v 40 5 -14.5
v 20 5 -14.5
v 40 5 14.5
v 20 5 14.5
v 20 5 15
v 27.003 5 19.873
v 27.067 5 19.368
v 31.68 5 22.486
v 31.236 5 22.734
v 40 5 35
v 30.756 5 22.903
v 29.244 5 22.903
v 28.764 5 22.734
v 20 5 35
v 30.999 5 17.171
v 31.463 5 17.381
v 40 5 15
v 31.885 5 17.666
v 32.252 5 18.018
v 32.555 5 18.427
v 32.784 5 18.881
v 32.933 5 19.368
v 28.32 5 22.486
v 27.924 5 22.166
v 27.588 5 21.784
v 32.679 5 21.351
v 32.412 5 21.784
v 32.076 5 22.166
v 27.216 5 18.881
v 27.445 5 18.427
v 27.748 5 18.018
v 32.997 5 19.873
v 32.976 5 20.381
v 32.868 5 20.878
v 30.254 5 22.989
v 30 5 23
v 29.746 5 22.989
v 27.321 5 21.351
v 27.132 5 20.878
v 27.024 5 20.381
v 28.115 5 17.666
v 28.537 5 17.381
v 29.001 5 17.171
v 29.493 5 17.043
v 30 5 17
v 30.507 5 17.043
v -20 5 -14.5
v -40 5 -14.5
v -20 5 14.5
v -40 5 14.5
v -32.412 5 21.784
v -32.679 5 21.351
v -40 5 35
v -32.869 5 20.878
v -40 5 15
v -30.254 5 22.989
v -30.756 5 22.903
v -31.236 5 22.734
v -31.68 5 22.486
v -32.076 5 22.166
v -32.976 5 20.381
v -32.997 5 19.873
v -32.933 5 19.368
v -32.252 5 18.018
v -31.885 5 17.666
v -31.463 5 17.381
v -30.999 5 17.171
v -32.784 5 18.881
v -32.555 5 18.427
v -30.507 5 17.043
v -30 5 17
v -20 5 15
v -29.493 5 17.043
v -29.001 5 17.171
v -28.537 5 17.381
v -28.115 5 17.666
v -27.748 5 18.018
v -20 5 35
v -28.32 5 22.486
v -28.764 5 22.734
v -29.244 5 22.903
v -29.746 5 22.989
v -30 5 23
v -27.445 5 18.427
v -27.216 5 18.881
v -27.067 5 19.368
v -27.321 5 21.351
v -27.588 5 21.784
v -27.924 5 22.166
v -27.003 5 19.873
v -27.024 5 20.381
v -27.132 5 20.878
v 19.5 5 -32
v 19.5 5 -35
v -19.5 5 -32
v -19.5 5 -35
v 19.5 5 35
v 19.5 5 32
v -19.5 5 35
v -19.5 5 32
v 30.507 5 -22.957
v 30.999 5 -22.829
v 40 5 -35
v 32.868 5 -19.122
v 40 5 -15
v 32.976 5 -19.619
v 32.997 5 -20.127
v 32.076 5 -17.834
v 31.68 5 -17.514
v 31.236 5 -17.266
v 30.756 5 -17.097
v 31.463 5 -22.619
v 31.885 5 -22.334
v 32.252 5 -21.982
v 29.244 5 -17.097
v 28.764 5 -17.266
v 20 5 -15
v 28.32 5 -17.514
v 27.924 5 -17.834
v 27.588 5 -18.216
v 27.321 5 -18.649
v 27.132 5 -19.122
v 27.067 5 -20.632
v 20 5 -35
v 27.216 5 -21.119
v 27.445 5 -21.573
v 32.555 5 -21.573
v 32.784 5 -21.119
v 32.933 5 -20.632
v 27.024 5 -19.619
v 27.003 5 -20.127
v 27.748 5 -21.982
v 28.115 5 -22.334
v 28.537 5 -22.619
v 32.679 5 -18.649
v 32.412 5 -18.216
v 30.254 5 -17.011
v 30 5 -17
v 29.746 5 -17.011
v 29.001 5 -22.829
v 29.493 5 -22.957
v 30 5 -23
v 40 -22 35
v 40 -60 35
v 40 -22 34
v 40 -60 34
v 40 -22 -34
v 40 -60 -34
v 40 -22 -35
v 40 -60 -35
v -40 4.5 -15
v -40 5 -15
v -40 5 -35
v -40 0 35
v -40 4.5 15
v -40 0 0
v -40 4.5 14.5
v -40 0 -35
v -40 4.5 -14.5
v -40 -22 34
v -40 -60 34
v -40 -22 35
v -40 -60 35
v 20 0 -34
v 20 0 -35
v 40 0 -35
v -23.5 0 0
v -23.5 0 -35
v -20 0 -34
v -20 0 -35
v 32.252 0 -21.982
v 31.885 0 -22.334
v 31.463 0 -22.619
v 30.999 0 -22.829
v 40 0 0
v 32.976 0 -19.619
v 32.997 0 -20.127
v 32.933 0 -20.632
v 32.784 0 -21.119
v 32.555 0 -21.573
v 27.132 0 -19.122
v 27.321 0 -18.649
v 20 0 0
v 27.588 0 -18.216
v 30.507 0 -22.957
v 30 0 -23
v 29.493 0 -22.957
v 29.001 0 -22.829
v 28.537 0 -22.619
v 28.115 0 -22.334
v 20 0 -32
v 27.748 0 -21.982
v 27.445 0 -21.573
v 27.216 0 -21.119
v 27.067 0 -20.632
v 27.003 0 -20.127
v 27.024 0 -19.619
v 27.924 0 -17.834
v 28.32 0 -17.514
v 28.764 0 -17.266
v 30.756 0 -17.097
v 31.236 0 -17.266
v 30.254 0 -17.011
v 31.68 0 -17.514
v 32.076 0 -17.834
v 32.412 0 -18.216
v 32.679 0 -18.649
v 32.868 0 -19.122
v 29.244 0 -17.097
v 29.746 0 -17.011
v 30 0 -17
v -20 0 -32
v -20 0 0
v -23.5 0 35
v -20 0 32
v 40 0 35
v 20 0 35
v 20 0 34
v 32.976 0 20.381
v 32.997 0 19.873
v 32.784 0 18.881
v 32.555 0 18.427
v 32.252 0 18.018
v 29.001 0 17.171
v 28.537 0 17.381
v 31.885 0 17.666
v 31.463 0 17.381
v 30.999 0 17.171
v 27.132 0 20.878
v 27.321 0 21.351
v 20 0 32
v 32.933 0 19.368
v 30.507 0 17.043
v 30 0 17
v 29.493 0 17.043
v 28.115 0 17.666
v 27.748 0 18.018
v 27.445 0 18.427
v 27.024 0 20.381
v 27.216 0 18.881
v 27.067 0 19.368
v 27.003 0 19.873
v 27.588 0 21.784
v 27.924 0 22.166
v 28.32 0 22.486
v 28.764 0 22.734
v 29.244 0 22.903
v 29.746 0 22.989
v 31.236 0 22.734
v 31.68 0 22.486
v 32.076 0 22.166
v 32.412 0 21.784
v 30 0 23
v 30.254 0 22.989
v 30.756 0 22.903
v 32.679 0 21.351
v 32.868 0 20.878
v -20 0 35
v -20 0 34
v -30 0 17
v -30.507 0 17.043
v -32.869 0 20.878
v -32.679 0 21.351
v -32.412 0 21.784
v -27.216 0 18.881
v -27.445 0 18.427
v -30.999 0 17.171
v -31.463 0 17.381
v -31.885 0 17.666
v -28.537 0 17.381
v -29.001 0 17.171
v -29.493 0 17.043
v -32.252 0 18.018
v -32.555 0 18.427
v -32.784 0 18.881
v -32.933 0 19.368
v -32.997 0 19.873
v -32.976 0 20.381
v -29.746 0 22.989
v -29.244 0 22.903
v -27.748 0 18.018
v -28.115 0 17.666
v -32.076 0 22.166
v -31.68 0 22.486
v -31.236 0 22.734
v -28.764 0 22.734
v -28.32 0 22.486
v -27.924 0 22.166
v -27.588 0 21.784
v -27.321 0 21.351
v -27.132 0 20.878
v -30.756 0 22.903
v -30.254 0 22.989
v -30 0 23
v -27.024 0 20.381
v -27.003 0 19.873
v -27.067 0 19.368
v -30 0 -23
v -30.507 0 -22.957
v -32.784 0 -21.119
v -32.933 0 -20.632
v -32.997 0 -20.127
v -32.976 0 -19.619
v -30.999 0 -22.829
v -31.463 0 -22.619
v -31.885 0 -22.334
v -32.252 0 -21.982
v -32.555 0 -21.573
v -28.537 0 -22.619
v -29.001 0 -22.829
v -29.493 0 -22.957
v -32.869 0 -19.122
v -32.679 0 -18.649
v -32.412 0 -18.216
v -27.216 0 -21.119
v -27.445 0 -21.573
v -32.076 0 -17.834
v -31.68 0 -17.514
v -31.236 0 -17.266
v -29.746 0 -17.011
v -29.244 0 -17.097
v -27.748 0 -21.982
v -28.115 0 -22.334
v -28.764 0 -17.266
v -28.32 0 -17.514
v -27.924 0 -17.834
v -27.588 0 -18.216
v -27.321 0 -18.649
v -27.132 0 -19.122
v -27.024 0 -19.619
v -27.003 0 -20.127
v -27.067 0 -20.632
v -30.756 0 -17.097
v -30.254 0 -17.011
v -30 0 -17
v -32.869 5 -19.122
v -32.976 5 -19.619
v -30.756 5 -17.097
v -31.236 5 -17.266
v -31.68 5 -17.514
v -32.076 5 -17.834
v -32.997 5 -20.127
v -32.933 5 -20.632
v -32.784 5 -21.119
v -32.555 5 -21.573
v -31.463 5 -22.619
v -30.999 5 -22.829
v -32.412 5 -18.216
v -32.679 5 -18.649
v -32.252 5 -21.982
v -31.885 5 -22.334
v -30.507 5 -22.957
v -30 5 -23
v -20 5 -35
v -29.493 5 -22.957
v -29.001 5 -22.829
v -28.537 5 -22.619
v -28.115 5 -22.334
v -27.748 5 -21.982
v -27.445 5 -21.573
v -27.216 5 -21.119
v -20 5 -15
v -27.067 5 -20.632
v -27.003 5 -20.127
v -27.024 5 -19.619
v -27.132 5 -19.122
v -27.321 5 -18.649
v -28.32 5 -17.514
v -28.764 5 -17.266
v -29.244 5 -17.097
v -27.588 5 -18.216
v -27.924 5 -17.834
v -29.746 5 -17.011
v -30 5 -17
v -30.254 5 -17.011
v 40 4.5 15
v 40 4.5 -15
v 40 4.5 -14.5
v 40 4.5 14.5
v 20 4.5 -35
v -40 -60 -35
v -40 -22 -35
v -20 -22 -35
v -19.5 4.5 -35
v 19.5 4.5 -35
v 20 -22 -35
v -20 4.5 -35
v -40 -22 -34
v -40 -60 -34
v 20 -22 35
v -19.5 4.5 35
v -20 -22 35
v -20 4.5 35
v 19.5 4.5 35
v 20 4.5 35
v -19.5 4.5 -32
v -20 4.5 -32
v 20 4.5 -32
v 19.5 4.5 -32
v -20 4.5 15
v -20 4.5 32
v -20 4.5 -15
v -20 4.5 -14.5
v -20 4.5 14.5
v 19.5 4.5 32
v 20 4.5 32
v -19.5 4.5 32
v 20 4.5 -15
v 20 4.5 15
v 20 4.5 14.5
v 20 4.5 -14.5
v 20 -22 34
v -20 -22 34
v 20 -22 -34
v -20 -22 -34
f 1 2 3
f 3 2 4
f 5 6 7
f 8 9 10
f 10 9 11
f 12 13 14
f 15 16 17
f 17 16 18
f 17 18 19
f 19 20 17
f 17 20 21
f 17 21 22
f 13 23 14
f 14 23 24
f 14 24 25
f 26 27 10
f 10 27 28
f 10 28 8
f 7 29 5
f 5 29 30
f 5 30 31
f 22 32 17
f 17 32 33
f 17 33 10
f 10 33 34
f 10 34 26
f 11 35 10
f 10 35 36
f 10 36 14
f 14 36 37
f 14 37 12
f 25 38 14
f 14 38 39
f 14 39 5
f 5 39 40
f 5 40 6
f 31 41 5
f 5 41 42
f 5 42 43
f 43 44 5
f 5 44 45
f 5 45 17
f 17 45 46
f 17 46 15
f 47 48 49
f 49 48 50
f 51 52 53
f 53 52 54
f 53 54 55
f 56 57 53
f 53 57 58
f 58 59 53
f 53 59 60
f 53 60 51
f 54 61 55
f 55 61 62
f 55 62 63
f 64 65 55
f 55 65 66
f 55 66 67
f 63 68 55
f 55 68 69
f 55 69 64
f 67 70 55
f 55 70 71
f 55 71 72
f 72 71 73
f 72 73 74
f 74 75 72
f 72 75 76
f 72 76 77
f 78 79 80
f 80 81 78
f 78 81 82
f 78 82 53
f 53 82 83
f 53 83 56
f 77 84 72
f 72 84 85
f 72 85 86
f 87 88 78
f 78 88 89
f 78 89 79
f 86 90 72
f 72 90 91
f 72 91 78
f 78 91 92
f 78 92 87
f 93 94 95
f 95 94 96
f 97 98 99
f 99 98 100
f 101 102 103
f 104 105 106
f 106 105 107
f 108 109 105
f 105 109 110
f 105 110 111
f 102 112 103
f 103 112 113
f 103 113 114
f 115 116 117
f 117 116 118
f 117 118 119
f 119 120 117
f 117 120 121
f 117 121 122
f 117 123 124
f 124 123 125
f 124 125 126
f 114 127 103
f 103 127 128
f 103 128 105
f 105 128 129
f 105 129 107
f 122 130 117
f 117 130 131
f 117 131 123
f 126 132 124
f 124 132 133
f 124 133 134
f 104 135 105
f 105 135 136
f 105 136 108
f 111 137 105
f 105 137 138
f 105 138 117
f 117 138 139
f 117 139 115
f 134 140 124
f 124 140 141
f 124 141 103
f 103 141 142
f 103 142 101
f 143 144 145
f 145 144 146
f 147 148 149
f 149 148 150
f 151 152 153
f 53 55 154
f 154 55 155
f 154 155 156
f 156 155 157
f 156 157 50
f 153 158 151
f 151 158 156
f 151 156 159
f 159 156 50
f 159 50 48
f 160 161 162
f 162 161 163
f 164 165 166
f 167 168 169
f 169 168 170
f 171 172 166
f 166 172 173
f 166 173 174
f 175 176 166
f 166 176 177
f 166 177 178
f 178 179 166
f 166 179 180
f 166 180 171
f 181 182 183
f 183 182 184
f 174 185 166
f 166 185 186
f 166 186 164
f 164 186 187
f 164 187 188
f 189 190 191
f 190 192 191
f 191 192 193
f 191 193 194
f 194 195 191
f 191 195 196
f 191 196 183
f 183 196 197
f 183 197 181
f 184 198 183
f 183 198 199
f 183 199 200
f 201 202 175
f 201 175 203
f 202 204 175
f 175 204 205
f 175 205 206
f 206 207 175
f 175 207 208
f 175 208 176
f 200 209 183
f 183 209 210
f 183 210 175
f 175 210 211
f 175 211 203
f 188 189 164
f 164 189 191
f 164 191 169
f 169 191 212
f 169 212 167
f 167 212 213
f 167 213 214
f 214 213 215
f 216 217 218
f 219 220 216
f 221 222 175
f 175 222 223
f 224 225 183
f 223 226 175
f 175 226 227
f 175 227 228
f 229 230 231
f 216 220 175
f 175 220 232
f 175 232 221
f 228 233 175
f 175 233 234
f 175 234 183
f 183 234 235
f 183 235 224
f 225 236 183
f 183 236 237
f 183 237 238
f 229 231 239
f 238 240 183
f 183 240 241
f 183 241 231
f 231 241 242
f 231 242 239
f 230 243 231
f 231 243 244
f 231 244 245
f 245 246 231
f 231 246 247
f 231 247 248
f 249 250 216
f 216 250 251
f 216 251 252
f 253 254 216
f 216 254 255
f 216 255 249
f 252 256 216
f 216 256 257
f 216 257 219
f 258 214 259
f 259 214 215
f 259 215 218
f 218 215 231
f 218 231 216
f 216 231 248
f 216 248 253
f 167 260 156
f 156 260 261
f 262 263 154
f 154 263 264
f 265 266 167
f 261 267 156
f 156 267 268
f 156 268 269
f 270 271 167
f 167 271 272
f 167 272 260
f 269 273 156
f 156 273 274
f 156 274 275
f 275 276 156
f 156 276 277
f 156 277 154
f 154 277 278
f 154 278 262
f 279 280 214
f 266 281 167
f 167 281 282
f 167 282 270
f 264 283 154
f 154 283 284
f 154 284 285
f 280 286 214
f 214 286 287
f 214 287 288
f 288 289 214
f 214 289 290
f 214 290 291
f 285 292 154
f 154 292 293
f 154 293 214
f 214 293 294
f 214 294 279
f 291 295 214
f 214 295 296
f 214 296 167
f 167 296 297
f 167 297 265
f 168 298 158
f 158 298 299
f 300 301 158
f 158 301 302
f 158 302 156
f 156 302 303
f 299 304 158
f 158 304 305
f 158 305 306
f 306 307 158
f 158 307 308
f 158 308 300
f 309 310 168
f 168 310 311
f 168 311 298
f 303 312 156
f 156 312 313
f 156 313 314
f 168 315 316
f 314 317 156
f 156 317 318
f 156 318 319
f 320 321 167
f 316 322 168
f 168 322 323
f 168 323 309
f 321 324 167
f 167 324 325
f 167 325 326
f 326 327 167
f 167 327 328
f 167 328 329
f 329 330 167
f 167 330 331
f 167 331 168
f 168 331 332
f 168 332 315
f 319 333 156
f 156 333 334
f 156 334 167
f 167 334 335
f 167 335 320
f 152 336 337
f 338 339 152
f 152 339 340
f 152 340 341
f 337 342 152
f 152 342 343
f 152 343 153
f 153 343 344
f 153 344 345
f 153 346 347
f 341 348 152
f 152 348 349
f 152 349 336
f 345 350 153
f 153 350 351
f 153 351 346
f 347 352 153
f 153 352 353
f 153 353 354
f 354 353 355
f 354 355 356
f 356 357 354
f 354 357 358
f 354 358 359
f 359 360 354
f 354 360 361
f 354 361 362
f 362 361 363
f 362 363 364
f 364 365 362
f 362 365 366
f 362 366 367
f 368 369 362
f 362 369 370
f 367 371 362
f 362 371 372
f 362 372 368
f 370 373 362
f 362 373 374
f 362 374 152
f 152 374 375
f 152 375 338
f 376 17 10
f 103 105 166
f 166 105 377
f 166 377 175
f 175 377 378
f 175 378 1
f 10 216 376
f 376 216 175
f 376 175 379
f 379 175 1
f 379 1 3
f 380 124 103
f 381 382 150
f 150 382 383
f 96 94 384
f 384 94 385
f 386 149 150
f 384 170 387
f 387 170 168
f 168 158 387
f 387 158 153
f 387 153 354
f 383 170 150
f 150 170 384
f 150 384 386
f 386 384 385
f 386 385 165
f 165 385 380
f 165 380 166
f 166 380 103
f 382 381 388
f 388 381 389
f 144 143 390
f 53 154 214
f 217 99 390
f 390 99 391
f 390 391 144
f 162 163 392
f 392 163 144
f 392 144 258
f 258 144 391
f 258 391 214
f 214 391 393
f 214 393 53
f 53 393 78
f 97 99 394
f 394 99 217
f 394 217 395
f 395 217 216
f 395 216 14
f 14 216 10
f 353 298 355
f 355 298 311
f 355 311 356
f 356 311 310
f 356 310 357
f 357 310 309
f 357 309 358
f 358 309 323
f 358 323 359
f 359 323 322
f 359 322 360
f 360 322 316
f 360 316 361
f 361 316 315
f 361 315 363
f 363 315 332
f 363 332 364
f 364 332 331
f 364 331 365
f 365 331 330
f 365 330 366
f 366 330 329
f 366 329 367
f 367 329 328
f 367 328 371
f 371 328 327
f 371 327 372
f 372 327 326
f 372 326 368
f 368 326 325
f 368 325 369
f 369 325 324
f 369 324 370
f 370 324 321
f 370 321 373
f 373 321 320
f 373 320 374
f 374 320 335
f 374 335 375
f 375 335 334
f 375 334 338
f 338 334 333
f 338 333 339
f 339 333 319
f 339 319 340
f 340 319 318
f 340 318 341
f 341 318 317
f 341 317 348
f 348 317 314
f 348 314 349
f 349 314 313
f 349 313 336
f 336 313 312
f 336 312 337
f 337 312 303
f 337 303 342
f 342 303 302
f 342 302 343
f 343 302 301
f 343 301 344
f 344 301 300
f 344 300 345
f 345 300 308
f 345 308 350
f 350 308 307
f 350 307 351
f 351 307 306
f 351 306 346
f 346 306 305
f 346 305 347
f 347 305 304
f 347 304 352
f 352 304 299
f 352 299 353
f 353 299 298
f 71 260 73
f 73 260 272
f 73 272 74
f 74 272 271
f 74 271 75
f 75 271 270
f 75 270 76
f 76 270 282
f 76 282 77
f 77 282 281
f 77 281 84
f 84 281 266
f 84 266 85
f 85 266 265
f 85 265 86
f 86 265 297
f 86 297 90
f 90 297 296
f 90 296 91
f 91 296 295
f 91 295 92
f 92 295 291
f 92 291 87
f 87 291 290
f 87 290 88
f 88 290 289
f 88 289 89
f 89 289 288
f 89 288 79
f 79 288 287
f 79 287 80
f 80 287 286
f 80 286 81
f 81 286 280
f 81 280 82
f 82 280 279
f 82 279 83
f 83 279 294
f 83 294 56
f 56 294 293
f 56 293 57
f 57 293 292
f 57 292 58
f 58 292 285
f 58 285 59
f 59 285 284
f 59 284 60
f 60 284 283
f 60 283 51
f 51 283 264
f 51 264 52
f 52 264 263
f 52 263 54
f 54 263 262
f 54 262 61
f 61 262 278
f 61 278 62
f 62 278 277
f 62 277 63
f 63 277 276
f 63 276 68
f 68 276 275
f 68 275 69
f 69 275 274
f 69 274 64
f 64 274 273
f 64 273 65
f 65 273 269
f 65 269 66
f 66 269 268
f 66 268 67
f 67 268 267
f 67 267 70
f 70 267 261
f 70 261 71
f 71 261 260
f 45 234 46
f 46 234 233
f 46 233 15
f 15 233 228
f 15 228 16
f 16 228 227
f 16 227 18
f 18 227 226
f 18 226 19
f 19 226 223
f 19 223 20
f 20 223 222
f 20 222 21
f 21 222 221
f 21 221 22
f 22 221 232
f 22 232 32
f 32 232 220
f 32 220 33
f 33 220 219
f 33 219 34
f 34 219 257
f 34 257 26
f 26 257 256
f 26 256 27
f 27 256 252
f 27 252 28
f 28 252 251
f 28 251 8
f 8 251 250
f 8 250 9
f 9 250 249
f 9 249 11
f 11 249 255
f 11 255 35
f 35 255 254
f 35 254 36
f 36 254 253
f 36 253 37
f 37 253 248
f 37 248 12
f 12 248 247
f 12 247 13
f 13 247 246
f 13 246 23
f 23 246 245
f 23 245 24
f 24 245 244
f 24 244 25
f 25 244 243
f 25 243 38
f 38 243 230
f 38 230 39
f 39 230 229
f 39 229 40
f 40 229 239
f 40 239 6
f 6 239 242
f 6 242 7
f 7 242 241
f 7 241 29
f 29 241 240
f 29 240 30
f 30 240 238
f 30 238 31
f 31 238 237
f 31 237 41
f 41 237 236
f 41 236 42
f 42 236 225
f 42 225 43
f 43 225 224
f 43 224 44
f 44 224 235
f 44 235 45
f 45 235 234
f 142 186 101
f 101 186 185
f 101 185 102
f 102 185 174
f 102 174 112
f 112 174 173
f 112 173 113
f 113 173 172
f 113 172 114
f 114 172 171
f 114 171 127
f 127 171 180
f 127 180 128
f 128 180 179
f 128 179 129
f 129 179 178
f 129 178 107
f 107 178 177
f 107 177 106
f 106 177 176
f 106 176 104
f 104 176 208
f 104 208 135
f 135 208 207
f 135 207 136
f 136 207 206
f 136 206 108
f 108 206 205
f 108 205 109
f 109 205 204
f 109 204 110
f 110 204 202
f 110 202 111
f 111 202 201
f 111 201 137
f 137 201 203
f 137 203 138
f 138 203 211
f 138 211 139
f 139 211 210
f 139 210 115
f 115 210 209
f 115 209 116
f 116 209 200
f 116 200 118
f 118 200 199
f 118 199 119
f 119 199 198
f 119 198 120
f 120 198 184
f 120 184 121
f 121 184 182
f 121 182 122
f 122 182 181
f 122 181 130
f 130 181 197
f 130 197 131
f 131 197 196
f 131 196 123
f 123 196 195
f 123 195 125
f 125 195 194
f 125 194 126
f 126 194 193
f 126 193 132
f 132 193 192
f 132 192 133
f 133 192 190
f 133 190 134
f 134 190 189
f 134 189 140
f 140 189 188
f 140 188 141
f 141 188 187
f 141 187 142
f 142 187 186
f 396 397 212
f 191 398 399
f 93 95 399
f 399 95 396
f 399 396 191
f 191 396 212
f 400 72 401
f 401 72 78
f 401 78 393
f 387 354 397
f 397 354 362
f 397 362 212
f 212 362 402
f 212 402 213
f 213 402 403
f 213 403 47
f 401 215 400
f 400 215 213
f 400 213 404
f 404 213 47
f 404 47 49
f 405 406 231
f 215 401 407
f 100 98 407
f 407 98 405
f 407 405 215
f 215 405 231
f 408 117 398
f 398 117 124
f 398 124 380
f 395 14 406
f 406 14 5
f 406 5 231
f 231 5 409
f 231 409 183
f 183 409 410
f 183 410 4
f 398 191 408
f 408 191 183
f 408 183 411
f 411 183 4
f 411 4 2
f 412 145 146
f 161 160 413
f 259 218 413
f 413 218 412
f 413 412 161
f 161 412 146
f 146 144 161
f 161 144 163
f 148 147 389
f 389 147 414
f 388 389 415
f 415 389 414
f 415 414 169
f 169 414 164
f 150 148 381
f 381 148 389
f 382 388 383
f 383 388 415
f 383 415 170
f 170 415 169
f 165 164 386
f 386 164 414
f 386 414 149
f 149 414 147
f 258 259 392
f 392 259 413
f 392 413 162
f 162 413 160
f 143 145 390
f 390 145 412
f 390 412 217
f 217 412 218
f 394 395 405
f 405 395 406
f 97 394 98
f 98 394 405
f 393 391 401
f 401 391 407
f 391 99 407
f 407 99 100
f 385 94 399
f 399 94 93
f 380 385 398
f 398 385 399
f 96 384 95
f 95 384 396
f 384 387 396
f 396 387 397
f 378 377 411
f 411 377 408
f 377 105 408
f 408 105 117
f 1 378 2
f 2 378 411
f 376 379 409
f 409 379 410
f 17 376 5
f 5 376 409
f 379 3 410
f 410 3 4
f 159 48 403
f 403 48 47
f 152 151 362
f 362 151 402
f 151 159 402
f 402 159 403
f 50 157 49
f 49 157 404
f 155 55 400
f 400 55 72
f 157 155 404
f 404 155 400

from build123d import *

# Parameters (mm, degrees)
SKETCH_1_W          = 80
SKETCH_1_H          = 70
SKETCH_1_R          = 3
SKETCH_1_W_2        = 40
SKETCH_1_H_2        = 64
EXTRUDE_1_DEPTH     = 5
SKETCH_2_W          = 80
SKETCH_2_H          = 1
EXTRUDE_2_DEPTH     = 60
SKETCH_3_W          = 20
SKETCH_3_H          = 22
CUT_EXTRUDE_1_DEPTH = 101.498756211
SKETCH_5_W          = 0.5
SKETCH_5_H          = 70
CUT_EXTRUDE_2_DEPTH = 0.5
SKETCH_6_W          = 80
SKETCH_6_H          = 0.5
CUT_EXTRUDE_3_DEPTH = 0.5


with BuildPart() as part:
    # 草图1 → 凸台-拉伸1 (new body)
    with BuildSketch(Plane(origin=(0, 0, 0), x_dir=(1, 0, 0), z_dir=(0, 1, 0))):
        Rectangle(SKETCH_1_W, SKETCH_1_H)
        with Locations(Location((-30, 20, 0), (0, 0, 270))):
            Circle(SKETCH_1_R, mode=Mode.SUBTRACT)
        with Locations(Location((-30, -20, 0), (0, 0, 270))):
            Circle(SKETCH_1_R, mode=Mode.SUBTRACT)
        with Locations(Location((30, -20, 0), (0, 0, 270))):
            Circle(SKETCH_1_R, mode=Mode.SUBTRACT)
        with Locations(Location((30, 20, 0), (0, 0, 270))):
            Circle(SKETCH_1_R, mode=Mode.SUBTRACT)
        Rectangle(SKETCH_1_W_2, SKETCH_1_H_2, mode=Mode.SUBTRACT)
    extrude(amount=EXTRUDE_1_DEPTH)

    # 草图2 → 凸台-拉伸2 (add)
    with BuildSketch(Plane.XZ):
        with Locations((0, 34.5)):
            Rectangle(SKETCH_2_W, SKETCH_2_H)
        with Locations((0, -34.5)):
            Rectangle(SKETCH_2_W, SKETCH_2_H)
    extrude(amount=EXTRUDE_2_DEPTH)

    # 草图3 → 切除-拉伸1 (cut, through all)
    with BuildSketch(Plane.XY.offset(35)):
        with Locations((30, -11)):
            Rectangle(SKETCH_3_W, SKETCH_3_H)
        with Locations((-30, -11)):
            Rectangle(SKETCH_3_W, SKETCH_3_H)
    extrude(amount=-CUT_EXTRUDE_1_DEPTH, mode=Mode.SUBTRACT)

    # 草图5 → 切除-拉伸2 (cut)
    with BuildSketch(Plane(origin=(0, 5, 0), x_dir=(1, 0, 0), z_dir=(0, 1, 0))):
        with Locations((-19.75, 0)):
            Rectangle(SKETCH_5_W, SKETCH_5_H)
        with Locations((19.75, 0)):
            Rectangle(SKETCH_5_W, SKETCH_5_H)
    extrude(amount=-CUT_EXTRUDE_2_DEPTH, mode=Mode.SUBTRACT)

    # 草图6 → 切除-拉伸3 (cut)
    with BuildSketch(Plane(origin=(0, 5, 0), x_dir=(1, 0, 0), z_dir=(0, 1, 0))):
        with Locations((0, -14.75)):
            Rectangle(SKETCH_6_W, SKETCH_6_H)
        with Locations((0, 14.75)):
            Rectangle(SKETCH_6_W, SKETCH_6_H)
    extrude(amount=-CUT_EXTRUDE_3_DEPTH, mode=Mode.SUBTRACT)


solid = part.part
